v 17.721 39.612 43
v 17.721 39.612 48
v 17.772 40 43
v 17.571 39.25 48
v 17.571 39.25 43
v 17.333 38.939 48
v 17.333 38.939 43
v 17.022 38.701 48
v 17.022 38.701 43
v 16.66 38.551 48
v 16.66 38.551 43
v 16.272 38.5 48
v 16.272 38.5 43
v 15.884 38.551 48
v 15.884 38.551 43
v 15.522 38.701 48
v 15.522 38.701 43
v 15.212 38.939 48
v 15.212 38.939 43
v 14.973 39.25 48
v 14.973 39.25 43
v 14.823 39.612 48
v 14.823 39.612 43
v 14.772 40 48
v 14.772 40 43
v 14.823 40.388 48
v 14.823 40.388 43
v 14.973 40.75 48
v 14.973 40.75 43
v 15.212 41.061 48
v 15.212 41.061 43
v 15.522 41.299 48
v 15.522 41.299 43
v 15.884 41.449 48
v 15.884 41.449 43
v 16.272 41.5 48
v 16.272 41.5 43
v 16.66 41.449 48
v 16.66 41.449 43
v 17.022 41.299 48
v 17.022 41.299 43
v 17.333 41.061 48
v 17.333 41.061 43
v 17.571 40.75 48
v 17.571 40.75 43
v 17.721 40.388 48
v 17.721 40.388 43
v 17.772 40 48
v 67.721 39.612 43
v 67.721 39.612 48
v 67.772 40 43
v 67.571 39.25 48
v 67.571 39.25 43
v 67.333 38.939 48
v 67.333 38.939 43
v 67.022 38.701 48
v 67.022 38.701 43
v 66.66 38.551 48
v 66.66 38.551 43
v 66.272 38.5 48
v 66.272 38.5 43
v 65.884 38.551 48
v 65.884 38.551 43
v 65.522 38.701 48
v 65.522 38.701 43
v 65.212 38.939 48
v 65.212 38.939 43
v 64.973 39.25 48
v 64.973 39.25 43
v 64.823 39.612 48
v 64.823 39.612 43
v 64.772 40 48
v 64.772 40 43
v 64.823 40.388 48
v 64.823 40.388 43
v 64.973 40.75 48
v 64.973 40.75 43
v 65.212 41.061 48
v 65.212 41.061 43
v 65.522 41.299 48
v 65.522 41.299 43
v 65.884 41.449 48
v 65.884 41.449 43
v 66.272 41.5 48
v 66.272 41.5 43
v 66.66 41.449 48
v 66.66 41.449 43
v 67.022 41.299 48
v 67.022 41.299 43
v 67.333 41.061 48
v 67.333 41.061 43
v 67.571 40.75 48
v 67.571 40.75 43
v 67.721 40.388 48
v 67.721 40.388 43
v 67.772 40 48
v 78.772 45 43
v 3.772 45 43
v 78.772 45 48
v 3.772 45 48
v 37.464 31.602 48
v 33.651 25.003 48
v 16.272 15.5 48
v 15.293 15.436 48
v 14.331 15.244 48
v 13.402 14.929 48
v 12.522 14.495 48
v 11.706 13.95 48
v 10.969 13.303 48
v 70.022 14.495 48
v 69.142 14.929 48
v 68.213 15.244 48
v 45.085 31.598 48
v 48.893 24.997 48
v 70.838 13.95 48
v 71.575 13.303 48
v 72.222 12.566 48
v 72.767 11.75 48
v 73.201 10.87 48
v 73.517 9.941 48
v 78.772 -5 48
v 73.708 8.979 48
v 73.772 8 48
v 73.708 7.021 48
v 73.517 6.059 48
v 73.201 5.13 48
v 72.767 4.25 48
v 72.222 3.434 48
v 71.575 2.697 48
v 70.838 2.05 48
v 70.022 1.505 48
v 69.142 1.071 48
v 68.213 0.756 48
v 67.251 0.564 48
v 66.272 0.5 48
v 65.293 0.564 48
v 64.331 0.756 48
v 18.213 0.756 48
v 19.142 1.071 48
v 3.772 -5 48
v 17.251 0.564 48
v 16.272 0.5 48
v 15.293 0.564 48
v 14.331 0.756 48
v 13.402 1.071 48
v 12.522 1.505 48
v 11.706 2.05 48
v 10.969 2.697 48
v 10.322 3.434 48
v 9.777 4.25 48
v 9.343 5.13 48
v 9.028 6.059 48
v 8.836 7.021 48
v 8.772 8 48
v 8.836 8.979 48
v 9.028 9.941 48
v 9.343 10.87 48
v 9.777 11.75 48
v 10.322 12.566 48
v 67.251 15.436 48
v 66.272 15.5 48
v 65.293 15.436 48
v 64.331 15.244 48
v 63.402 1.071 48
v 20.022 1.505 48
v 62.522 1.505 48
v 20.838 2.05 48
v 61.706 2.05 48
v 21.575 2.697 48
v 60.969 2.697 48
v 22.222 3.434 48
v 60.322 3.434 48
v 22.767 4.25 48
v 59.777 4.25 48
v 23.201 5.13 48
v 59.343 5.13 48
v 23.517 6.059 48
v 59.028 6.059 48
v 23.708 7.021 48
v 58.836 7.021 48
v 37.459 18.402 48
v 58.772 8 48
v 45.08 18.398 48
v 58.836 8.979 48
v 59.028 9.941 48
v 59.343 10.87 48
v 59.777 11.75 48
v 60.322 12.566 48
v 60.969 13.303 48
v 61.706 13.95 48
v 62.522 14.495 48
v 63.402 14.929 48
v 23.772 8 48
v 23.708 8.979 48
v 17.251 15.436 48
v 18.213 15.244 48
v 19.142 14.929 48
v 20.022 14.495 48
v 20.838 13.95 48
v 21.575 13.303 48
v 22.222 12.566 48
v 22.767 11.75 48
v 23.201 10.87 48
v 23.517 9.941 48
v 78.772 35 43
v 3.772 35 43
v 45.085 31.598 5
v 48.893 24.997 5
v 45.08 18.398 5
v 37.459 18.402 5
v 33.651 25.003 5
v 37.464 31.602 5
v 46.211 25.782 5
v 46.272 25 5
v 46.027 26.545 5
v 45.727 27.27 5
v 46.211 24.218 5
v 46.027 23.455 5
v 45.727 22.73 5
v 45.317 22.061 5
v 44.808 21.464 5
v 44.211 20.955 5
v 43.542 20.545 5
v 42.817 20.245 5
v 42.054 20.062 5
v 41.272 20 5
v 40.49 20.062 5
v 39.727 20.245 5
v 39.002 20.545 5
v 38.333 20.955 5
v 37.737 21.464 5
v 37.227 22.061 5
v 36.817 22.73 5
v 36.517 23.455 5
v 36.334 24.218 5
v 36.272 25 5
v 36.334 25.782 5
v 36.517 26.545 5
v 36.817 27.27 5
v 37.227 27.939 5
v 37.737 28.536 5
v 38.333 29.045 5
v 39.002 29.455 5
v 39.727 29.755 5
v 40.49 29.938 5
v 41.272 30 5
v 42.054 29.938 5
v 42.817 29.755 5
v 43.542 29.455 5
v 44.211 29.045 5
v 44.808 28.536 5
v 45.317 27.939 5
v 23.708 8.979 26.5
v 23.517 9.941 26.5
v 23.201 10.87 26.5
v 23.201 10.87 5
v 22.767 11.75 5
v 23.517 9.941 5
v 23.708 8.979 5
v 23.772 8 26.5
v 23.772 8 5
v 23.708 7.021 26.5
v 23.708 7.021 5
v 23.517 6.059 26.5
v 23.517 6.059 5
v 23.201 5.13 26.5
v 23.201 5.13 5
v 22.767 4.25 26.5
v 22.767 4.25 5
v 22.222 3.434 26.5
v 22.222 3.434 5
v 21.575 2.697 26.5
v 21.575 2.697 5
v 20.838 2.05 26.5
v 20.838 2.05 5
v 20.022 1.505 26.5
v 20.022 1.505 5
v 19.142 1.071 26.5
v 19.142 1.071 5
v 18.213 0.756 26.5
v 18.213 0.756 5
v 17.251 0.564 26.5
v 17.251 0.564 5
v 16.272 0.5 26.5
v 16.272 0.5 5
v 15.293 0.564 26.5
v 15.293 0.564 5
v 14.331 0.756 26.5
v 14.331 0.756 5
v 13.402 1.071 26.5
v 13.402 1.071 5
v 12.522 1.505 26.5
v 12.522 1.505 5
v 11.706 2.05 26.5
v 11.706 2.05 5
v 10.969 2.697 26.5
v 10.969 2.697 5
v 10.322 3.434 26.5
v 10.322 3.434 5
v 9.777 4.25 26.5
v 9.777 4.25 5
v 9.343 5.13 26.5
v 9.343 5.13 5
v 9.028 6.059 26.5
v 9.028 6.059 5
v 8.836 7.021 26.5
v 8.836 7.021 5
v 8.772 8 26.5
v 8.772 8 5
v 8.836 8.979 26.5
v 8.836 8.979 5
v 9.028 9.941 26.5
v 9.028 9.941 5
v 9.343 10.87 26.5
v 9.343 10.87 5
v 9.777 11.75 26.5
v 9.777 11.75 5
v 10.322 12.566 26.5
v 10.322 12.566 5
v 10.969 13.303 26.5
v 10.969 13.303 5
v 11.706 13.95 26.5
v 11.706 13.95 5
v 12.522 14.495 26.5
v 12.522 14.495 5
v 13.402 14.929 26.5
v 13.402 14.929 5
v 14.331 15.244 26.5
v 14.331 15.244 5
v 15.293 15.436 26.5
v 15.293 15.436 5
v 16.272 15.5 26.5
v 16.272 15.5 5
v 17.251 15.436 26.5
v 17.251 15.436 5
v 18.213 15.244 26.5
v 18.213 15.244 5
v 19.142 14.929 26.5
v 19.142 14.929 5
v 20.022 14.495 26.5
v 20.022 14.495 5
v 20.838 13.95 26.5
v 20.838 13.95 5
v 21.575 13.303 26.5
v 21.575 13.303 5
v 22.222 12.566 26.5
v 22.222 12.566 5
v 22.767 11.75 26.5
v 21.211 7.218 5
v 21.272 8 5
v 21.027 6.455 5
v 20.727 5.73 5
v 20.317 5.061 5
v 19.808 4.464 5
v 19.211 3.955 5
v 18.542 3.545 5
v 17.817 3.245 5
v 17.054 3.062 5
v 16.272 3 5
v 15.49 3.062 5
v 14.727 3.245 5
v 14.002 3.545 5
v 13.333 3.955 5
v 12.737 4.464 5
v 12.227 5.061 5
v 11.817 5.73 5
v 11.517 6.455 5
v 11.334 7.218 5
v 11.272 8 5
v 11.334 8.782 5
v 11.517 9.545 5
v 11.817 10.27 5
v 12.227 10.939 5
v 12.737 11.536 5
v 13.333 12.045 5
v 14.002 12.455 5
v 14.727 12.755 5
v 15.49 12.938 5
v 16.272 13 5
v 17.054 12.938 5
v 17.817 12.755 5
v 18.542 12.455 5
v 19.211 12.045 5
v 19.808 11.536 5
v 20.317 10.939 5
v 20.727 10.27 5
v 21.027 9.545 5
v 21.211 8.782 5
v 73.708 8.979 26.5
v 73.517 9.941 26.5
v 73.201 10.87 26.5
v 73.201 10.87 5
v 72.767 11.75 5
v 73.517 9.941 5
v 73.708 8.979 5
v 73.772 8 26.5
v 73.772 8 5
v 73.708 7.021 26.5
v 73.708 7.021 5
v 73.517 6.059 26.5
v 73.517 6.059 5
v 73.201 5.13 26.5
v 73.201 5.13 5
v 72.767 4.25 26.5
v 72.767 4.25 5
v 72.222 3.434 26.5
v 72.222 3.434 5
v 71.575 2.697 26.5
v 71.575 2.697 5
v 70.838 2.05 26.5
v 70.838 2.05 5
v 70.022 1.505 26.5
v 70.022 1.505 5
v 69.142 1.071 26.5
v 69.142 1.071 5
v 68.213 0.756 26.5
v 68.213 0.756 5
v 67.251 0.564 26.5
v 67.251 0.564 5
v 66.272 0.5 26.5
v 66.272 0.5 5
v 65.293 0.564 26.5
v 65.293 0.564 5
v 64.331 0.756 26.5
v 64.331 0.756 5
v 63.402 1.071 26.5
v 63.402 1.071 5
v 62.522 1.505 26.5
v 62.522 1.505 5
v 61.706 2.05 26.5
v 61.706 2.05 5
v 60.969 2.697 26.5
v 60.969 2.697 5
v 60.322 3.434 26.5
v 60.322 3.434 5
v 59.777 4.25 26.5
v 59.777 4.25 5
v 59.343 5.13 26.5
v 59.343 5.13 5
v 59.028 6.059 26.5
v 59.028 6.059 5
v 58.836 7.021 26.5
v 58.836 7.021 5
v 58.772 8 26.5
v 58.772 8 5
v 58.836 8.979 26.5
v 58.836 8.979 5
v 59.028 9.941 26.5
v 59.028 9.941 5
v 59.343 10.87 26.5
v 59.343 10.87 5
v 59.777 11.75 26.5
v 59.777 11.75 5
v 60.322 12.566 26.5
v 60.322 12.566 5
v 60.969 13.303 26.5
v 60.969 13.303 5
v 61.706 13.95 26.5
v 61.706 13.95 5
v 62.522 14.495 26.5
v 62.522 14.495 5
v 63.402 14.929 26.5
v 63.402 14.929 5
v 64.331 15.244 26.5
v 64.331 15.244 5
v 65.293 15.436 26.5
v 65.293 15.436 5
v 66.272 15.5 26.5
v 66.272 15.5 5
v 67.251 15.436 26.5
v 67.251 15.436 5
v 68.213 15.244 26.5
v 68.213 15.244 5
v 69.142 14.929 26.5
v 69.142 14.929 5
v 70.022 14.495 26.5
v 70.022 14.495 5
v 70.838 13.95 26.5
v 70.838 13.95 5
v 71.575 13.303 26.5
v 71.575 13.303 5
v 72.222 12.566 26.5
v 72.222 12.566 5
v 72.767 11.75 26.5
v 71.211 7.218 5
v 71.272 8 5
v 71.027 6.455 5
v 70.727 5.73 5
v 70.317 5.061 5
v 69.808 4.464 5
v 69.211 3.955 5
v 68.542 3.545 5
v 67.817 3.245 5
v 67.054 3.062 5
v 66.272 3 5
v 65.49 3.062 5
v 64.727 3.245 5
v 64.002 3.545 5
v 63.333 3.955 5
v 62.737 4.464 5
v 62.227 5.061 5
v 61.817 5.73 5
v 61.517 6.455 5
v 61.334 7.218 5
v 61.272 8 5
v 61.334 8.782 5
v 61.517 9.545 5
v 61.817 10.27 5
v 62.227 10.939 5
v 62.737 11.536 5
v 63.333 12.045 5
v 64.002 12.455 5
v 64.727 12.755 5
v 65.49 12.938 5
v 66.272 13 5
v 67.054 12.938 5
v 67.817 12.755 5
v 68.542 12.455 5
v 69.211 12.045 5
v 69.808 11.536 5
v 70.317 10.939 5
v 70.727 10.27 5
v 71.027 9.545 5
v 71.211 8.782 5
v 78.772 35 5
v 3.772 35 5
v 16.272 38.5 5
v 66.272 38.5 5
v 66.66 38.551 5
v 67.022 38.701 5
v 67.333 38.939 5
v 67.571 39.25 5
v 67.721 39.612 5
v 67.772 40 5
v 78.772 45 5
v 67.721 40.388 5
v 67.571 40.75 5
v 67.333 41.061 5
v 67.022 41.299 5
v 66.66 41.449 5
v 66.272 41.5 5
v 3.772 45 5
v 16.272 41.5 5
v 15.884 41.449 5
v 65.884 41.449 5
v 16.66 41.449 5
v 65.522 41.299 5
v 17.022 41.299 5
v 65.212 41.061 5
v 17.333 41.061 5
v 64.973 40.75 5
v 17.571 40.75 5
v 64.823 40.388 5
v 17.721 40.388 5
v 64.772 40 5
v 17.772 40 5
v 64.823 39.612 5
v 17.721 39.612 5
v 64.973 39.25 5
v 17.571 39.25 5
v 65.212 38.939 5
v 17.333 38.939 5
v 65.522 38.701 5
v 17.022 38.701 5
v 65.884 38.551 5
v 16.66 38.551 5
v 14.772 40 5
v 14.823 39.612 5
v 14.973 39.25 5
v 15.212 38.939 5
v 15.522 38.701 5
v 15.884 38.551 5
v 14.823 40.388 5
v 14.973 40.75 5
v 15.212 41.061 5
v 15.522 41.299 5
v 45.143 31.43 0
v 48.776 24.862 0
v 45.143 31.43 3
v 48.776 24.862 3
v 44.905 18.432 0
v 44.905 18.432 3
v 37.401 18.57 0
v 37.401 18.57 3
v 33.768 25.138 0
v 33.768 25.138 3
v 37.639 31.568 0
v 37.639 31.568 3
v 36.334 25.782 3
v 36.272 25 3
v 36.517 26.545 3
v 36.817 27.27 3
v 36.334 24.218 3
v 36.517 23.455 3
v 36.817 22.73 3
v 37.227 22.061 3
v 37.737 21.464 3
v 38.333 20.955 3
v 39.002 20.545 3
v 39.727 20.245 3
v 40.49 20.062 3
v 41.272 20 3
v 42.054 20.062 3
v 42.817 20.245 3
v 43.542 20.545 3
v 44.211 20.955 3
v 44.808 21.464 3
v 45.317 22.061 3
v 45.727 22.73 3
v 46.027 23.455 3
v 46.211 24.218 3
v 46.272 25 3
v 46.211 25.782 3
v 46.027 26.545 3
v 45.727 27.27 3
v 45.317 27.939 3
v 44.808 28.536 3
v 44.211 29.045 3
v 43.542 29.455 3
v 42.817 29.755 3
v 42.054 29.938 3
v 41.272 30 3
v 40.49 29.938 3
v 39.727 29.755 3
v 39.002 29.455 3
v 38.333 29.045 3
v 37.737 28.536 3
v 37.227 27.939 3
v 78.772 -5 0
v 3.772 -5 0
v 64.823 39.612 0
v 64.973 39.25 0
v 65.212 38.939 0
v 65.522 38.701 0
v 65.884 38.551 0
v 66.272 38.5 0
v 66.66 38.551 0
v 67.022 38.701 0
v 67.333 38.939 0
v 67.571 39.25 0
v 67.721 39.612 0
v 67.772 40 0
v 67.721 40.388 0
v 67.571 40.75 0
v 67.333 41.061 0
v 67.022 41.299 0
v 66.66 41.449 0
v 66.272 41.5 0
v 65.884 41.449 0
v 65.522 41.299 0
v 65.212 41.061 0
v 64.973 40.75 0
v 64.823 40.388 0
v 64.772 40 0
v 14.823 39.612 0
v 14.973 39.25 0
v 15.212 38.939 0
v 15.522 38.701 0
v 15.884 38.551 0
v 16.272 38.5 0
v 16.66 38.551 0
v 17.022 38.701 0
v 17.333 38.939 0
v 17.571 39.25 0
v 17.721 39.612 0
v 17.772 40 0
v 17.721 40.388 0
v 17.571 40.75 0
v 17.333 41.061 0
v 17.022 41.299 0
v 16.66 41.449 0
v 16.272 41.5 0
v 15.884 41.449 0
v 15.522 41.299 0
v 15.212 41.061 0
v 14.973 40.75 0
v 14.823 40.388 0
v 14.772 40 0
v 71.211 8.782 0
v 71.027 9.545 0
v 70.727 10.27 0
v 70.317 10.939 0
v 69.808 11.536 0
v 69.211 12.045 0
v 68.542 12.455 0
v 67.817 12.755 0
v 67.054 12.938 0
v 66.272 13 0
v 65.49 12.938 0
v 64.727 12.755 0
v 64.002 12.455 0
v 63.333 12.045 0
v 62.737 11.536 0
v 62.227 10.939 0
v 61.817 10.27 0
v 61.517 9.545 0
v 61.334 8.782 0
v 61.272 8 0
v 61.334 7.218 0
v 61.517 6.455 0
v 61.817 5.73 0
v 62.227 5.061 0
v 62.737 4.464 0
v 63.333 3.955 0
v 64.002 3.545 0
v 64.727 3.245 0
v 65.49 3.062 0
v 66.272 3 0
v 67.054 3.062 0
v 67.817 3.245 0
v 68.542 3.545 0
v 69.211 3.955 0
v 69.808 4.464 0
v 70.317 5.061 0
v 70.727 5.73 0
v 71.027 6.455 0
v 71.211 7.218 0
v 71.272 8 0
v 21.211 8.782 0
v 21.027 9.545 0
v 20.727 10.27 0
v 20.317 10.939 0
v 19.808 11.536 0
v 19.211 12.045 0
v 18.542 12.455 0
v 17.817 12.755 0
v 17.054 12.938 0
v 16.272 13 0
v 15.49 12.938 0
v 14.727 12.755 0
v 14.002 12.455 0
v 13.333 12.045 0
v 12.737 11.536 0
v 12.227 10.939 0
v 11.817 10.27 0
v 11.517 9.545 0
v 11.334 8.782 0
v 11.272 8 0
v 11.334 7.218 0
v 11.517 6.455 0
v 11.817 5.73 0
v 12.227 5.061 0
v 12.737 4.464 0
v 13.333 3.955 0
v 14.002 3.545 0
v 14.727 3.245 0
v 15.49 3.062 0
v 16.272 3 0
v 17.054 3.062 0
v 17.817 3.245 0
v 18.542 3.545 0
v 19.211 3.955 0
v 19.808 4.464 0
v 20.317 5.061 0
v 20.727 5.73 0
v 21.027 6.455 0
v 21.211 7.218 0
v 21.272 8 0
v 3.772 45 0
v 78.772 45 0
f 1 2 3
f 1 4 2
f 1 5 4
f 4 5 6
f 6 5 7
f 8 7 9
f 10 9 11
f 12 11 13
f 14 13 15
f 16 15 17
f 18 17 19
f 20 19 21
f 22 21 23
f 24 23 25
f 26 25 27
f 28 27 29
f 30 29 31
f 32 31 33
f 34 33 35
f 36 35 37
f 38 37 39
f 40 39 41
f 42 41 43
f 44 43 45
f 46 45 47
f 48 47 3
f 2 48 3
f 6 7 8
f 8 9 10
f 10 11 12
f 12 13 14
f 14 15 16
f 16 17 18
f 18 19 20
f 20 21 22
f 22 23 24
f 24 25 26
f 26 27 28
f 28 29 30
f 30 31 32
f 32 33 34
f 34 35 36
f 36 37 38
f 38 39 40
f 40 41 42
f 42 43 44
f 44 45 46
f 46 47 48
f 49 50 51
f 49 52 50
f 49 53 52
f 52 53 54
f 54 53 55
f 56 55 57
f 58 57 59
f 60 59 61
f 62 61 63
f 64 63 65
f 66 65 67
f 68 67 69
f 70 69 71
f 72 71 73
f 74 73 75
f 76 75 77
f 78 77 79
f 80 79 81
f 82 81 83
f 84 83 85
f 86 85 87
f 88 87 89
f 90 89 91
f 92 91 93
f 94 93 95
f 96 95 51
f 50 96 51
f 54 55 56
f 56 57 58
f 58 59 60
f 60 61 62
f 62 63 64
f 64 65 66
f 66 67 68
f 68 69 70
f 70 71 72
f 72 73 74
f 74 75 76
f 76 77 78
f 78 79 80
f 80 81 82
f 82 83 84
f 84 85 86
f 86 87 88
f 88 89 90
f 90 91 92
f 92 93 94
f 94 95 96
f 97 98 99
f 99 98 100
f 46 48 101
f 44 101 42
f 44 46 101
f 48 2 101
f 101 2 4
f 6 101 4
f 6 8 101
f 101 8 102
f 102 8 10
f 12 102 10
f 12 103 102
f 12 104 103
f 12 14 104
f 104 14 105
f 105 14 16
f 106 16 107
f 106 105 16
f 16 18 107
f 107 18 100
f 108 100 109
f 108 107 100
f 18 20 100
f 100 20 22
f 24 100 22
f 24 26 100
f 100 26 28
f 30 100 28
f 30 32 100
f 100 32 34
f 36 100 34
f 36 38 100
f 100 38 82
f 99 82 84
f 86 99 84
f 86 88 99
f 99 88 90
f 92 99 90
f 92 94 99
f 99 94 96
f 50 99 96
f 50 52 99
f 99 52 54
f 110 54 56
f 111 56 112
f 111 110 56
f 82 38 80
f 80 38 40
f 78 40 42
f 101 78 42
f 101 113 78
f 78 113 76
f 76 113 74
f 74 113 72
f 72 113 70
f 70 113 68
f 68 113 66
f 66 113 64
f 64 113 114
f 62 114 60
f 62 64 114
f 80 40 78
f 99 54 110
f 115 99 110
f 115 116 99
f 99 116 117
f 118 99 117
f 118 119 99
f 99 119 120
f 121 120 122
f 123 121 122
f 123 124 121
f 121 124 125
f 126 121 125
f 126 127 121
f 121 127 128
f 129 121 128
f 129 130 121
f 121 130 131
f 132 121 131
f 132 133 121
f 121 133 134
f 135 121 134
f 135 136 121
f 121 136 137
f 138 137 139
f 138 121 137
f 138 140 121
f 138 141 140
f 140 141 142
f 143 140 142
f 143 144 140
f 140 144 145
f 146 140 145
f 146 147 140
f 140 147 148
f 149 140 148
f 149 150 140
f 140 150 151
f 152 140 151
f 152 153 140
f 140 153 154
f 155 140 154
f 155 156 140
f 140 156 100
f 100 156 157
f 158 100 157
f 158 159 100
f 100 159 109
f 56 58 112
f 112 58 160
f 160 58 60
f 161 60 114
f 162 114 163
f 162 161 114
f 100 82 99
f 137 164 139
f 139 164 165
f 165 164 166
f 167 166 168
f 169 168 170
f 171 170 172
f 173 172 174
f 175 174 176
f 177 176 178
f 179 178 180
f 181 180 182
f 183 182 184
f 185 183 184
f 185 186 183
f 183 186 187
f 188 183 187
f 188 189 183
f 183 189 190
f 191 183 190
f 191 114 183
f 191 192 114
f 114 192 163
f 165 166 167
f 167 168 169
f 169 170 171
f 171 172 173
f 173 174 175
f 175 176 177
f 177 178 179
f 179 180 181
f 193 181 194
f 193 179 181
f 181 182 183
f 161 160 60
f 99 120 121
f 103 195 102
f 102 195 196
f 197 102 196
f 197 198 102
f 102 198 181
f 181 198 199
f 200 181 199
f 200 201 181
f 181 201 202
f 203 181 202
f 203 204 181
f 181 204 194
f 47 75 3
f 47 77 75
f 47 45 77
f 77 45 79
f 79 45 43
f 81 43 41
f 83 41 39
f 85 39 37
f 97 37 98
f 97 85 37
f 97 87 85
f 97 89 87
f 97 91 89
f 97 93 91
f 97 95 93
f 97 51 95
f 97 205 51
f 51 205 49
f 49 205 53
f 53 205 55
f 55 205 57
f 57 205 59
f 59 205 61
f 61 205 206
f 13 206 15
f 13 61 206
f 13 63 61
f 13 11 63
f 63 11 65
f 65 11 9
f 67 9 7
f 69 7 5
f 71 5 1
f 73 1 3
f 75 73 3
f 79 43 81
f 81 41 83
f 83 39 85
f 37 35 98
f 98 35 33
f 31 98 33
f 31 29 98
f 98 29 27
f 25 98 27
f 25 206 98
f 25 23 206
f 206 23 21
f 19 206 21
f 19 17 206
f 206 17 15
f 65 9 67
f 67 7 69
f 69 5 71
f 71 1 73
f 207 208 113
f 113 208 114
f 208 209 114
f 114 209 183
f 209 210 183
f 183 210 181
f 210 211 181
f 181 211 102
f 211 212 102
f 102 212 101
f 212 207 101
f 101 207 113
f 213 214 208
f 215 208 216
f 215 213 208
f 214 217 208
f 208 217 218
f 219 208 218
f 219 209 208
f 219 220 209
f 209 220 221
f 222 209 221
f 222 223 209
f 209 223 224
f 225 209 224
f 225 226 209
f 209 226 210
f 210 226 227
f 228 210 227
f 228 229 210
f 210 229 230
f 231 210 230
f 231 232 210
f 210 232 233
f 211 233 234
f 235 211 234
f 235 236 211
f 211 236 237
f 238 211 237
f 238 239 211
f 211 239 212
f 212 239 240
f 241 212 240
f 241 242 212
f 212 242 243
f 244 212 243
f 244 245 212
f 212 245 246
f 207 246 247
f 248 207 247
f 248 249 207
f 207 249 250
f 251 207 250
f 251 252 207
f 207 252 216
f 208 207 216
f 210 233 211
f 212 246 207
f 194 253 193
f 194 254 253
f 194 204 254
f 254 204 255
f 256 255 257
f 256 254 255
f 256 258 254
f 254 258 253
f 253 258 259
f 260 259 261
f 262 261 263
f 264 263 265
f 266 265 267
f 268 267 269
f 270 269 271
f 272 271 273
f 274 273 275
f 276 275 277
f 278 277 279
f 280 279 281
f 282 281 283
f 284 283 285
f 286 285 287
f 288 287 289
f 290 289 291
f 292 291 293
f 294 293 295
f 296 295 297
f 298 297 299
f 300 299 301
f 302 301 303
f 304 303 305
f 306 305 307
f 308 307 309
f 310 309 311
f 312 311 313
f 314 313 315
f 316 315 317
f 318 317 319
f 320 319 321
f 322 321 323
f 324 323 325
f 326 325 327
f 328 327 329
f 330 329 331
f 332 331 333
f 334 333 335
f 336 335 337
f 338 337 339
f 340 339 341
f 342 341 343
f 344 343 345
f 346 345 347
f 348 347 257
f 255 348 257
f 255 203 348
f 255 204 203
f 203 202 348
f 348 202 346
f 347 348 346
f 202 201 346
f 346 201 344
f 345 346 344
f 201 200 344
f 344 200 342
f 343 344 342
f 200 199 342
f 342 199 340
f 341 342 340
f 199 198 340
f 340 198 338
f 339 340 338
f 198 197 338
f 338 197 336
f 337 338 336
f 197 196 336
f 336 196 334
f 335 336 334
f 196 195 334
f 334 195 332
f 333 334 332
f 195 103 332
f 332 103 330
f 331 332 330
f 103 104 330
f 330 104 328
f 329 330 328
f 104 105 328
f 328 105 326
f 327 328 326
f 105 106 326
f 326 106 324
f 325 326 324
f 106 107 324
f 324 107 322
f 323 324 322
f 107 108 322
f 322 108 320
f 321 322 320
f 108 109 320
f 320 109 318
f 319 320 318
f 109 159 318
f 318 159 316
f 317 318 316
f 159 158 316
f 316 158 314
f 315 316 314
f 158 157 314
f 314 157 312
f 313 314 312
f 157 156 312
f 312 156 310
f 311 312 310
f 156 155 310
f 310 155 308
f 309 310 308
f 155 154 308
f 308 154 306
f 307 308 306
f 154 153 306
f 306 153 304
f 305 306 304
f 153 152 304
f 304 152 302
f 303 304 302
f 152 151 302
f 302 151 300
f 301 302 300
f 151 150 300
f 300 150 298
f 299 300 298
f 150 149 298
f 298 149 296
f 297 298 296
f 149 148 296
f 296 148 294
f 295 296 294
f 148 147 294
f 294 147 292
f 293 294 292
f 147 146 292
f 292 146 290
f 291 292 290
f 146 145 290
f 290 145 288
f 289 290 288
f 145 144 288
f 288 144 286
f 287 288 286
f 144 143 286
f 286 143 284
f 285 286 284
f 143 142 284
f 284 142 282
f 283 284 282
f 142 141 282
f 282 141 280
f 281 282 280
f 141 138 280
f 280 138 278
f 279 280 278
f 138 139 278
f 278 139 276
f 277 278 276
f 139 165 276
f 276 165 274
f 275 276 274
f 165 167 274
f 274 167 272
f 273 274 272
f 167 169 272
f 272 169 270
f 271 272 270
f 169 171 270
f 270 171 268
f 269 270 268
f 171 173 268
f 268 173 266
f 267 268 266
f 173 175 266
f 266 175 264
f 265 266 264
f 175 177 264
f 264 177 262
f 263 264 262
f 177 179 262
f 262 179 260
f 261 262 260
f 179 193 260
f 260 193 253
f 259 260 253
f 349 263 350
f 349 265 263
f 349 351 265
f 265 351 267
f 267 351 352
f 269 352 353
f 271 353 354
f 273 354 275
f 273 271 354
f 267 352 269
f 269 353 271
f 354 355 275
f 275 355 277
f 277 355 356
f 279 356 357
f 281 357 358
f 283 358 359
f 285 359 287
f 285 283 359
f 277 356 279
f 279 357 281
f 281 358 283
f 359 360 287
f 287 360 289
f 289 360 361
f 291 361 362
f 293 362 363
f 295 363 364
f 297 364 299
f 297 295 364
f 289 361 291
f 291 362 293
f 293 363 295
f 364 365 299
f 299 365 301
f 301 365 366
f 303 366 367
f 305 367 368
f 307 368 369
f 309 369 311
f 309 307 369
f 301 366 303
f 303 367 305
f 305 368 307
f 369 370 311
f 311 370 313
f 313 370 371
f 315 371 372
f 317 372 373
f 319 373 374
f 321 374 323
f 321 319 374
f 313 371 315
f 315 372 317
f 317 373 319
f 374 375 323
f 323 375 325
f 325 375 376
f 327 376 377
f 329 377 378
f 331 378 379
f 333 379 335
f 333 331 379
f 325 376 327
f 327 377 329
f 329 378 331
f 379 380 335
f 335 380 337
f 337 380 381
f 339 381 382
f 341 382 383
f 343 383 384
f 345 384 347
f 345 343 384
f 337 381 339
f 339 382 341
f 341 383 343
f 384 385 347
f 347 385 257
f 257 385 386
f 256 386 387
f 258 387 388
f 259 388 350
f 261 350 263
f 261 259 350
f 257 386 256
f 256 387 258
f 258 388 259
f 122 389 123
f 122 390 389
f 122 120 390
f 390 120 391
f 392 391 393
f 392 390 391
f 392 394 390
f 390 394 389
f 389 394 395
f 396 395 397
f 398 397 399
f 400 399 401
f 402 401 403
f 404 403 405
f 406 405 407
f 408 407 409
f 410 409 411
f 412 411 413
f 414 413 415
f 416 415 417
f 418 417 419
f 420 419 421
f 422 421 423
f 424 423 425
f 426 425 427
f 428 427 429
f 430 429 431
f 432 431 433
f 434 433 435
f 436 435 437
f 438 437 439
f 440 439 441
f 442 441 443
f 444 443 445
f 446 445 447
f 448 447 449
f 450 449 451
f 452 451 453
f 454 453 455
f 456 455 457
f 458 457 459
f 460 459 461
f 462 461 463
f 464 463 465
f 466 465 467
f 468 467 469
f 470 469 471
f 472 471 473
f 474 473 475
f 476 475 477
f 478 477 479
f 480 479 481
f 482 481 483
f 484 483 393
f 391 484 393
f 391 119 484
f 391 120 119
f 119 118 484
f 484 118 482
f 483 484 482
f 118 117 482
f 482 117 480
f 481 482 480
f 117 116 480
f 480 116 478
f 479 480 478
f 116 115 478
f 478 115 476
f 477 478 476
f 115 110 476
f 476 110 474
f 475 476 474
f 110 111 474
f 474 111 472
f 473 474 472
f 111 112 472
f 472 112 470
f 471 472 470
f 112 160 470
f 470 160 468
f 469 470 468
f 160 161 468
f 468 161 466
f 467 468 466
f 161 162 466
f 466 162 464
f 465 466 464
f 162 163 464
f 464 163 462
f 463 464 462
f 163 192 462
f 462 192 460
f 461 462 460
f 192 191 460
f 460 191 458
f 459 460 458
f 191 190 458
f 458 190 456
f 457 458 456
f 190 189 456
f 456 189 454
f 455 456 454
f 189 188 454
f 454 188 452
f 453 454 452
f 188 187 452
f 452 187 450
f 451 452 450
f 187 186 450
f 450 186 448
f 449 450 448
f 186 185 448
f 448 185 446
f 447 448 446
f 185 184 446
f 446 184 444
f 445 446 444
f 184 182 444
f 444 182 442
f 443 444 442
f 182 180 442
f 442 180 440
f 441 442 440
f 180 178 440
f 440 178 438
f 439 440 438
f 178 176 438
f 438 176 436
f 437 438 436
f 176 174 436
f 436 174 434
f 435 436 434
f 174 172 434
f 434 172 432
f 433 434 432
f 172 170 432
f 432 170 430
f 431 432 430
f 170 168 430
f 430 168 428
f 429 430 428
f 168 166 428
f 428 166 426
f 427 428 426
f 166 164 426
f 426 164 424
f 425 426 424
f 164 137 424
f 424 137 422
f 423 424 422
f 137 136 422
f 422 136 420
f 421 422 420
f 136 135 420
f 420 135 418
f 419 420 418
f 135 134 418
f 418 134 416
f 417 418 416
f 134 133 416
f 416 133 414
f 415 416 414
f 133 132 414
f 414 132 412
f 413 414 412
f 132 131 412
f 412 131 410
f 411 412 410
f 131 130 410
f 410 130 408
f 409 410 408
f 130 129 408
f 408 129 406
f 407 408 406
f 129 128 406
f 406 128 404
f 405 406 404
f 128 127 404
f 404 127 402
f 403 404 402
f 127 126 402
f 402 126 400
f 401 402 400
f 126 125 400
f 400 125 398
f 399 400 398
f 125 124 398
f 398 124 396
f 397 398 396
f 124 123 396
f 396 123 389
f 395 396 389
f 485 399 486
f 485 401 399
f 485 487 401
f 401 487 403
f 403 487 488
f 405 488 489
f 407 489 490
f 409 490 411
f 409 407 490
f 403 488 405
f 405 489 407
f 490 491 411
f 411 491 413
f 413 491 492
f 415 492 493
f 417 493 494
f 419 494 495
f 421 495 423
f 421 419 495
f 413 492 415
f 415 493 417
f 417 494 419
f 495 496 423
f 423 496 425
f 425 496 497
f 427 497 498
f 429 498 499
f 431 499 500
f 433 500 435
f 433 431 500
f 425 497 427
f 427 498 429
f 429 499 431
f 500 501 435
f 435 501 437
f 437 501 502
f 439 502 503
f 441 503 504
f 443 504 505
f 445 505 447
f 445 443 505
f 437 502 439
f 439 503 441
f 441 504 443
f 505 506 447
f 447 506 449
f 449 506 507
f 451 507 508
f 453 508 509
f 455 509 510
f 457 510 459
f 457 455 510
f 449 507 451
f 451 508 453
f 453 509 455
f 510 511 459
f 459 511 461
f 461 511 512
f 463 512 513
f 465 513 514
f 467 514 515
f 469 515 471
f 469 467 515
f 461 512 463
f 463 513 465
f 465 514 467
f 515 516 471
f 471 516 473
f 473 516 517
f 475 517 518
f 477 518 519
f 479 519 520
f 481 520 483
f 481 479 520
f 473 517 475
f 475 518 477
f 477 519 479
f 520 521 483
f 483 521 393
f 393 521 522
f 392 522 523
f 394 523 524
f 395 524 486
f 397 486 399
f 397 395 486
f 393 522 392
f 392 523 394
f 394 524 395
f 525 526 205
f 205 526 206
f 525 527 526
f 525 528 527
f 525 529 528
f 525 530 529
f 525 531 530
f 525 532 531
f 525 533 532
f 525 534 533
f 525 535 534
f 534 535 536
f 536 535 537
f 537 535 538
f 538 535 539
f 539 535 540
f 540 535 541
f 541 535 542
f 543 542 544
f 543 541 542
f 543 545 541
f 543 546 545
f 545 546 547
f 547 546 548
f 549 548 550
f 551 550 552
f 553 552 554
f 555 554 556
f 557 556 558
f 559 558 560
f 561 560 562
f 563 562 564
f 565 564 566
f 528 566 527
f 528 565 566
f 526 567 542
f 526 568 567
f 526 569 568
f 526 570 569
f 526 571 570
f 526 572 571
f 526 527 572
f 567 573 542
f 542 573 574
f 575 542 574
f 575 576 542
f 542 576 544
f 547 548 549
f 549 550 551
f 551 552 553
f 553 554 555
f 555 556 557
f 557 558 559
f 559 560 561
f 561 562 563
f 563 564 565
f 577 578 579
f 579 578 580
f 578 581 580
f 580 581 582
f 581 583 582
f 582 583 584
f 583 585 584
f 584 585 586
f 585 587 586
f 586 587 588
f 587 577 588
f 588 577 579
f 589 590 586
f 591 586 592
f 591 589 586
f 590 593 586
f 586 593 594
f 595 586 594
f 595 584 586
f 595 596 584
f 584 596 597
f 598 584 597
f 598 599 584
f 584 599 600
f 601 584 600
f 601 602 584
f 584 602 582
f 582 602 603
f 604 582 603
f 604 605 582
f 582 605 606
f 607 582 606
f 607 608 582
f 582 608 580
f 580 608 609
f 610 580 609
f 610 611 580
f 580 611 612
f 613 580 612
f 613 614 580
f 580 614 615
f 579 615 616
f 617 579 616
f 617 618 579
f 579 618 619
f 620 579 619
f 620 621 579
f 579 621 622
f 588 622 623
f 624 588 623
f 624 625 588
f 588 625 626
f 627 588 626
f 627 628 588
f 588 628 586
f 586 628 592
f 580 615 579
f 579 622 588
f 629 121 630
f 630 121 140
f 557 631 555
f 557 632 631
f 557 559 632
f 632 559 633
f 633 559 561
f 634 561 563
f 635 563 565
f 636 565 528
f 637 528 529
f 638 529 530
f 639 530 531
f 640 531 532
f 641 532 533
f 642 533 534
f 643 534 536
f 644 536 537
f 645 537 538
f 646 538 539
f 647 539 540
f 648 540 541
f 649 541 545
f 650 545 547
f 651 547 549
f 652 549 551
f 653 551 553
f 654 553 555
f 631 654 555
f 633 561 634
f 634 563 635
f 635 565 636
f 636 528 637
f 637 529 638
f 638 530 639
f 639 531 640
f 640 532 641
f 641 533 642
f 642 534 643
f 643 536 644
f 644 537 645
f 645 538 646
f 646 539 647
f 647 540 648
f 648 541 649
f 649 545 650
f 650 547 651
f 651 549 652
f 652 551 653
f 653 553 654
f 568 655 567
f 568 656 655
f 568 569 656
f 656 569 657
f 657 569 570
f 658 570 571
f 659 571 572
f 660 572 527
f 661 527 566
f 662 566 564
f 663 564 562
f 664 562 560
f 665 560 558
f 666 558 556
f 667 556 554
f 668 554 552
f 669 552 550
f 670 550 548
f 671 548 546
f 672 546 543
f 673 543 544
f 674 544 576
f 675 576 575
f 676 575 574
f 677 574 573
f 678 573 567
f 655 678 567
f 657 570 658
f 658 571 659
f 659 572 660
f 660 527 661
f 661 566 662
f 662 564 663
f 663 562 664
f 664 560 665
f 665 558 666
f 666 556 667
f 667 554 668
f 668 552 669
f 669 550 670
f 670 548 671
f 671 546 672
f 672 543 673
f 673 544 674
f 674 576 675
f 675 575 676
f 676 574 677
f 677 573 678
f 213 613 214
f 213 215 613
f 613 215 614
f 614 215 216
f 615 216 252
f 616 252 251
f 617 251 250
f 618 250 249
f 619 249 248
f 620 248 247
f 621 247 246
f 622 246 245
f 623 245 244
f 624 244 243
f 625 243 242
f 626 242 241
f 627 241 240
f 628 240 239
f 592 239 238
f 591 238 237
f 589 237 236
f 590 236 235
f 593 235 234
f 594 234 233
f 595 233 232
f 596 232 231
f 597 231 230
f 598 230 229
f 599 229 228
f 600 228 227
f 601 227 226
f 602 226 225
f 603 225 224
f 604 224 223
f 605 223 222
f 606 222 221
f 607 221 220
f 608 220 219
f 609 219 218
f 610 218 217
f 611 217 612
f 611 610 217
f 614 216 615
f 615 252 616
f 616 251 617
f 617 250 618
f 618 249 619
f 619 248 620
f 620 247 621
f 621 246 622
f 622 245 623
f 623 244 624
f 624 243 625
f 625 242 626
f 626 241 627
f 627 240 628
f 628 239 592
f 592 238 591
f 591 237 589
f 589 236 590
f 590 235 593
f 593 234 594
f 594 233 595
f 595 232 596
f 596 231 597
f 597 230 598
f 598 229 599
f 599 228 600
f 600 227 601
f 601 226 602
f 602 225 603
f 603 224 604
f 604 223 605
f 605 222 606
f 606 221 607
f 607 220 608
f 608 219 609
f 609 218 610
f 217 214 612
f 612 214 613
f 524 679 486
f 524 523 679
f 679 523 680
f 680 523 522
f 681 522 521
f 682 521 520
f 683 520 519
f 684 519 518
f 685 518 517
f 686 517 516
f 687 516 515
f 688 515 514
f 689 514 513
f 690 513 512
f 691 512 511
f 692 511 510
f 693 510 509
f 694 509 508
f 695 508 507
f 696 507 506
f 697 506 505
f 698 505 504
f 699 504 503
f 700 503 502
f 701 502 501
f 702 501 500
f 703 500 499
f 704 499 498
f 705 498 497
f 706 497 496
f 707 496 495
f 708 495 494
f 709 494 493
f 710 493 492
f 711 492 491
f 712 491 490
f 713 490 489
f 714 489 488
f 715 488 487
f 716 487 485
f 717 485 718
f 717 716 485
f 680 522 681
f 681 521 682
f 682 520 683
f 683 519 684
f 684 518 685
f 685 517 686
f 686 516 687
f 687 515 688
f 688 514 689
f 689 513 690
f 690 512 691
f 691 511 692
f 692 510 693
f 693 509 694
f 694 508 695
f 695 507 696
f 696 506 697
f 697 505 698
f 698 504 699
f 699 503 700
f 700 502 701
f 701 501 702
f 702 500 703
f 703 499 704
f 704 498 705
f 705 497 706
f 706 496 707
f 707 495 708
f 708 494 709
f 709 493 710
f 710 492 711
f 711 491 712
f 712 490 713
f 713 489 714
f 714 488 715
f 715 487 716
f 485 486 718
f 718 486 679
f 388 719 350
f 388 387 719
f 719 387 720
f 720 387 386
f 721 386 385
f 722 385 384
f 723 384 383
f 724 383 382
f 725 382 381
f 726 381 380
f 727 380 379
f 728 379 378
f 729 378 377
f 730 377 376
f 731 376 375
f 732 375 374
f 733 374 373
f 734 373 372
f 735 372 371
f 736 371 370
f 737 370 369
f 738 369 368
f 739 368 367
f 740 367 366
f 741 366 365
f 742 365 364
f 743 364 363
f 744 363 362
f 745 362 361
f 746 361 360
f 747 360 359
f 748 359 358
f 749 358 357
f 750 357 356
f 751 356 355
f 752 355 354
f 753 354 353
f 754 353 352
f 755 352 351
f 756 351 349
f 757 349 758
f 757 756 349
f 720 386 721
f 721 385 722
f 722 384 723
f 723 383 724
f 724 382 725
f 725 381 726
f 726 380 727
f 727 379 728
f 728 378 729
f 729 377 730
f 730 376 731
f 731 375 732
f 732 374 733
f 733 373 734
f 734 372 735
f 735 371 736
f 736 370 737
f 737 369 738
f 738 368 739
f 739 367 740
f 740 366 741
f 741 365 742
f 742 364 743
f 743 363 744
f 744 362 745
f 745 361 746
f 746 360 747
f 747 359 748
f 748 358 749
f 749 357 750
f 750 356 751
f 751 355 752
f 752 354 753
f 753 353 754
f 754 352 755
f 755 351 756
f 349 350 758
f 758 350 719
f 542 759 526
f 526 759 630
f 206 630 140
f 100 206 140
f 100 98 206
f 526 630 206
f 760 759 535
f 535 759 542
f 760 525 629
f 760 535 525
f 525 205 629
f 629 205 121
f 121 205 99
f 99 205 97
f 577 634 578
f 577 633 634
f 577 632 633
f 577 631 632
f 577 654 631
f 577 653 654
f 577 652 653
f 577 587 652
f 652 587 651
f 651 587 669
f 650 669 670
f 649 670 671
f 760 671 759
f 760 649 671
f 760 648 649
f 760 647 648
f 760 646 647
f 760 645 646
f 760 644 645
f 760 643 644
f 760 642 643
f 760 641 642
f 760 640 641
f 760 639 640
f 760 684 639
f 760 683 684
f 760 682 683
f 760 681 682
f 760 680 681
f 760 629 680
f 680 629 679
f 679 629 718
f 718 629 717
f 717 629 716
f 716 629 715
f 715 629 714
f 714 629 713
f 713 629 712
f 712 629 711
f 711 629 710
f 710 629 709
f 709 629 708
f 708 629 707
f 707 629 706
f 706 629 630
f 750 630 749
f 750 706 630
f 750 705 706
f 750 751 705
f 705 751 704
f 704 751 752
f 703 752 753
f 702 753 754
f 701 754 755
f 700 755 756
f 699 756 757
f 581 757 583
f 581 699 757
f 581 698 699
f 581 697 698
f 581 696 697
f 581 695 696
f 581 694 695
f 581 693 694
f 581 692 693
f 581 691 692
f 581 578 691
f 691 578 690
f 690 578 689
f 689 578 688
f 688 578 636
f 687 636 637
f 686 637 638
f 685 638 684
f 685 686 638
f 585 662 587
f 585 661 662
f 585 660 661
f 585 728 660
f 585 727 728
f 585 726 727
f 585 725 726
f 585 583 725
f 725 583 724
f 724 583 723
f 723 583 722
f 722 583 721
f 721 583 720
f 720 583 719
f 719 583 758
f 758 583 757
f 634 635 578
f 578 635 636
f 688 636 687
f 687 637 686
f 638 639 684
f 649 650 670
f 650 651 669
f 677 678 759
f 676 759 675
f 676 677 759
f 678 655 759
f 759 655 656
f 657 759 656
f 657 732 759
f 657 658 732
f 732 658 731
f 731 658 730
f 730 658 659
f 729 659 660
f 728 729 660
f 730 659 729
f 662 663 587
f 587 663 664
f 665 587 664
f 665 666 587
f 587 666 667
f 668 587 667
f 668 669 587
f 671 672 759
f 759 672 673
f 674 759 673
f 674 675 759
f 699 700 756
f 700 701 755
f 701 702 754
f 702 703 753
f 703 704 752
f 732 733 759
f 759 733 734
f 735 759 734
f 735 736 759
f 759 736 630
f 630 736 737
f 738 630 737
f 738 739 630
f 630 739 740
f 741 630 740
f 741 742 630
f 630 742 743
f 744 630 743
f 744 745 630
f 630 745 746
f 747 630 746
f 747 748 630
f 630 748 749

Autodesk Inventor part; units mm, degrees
ref_plane "YZ Plane" through (0, 0, 0) normal (1, 0, 0) x (0, 1, 0)
ref_plane "XZ Plane" through (0, 0, 0) normal (0, 1, 0) x (-1, 0, 0)
ref_plane "XY Plane" through (0, 0, 0) normal (0, 0, 1) x (1, 0, 0)
sketch "Sketch11" plane through (0, 0, 0) normal (0, 0, 1) x (1, 0, 0)
  line L0 (3.7722, 0) -> (78.7722, 0)
  line L1 (78.7722, 0) -> (78.7722, 45)
  line L2 (78.7722, 45) -> (3.7722, 45)
  line L3 (3.7722, 45) -> (3.7722, 0)
  circle A0 centre (16.2722, 8) radius 5
  circle A1 centre (66.2722, 8) radius 5
  point P0 (0, 0)
  dimension "d63" = 75
  dimension "d65" = 45
  dimension "d66" = 10
  dimension "d67" = 10
  dimension "d68" = 50
  dimension "d69" = 12.5
  dimension "d70" = 8
  dimension "d71" = 8
extrude "Extrusion10" add sketch "Sketch11" along normal blind 5
sketch "Sketch12" plane through (0, 0, 5) normal (0, 0, 1) x (1, 0, 0)
  circle A0 centre (66.2722, 8) radius 5 projected
  circle A1 centre (16.2722, 8) radius 5 projected
  circle A2 centre (16.2722, 8) radius 7.5
  circle A3 centre (66.2722, 8) radius 7.5
  point P0 (0, 0)
  dimension "d74" = 15
  dimension "d77" = 15
sketch "Sketch13" plane through (0, 0, 5) normal (0, 0, 1) x (1, 0, 0)
  line L0 (3.7722, 0) -> (78.7722, 0) projected
  line L1 (3.7722, 45) -> (3.7722, 0) projected
  line L2 (37.4644, 31.6016) -> (45.0855, 31.5984)
  line L3 (45.0855, 31.5984) -> (48.8932, 24.9968)
  line L4 (48.8932, 24.9968) -> (45.0799, 18.3984)
  line L5 (45.0799, 18.3984) -> (37.4589, 18.4016)
  line L6 (37.4589, 18.4016) -> (33.6512, 25.0032)
  line L7 (33.6512, 25.0032) -> (37.4644, 31.6016)
  point P0 (0, 0)
  point P1 (41.2722, 25)
  point P2 (41.2722, 25)
  dimension "d81" = 37.5
  dimension "d82" = 25
  dimension "d83" = 13.2
sketch "Sketch14" plane through (0, 0, 5) normal (0, 0, 1) x (1, 0, 0)
  circle A0 centre (41.2722, 25) radius 5
  line L0 (3.7722, 0) -> (78.7722, 0) projected
  line L1 (3.7722, 45) -> (3.7722, 0) projected
  point P0 (0, 0)
  dimension "d87" = 10
  dimension "d89" = 25
  dimension "d90" = 37.5
extrude "Extrusion13" cut sketch "Sketch14" against normal blind 50
sketch "Sketch16" plane through (0, 0, 0) normal (0, 0, -1) x (-1, 0, 0)
  line L0 (-78.7722, 45) -> (-3.7722, 45) projected
  line L1 (-78.7722, 0) -> (-78.7722, 45) projected
  circle A0 centre (-66.2722, 40) radius 1.5
  circle A1 centre (-16.2722, 40) radius 1.5
  point P0 (0, 0)
  dimension "d99" = 3
  dimension "d101" = 3
  dimension "d102" = 5
  dimension "d103" = 5
  dimension "d104" = 50
  dimension "d105" = 12.5
extrude "Extrusion15" cut sketch "Sketch16" against normal blind 100
sketch "Sketch17" plane through (3.7722, 0, 0) normal (0, -1, 0) x (1, 0, 0)
  line L0 (0, 0) -> (75, 0) projected
  line L1 (75, 0) -> (75, 5) projected
  line L2 (0, 0) -> (75, 0)
  line L3 (75, 0) -> (75, 5)
  line L4 (75, 5) -> (0, 5)
  line L5 (0, 5) -> (0, 0)
  point P0 (-3.7722, 0)
extrude "Extrusion16" add sketch "Sketch17" along normal blind 5
sketch "Sketch20" plane through (0, 0, 0) normal (0, 0, -1) x (-1, 0, 0)
  circle A0 centre (-41.2722, 25) radius 5 projected
  line L0 (-45.1434, 31.4302) -> (-37.6391, 31.5677)
  line L1 (-37.6391, 31.5677) -> (-33.7679, 25.1375)
  line L2 (-33.7679, 25.1375) -> (-37.401, 18.5698)
  line L3 (-37.401, 18.5698) -> (-44.9052, 18.4323)
  line L4 (-44.9052, 18.4323) -> (-48.7765, 24.8625)
  line L5 (-48.7765, 24.8625) -> (-45.1434, 31.4302)
  point P0 (0, 0)
  dimension "d122" = 13
extrude "Extrusion19" cut sketch "Sketch20" against normal blind 3
sketch "Sketch21" plane through (0, 0, 5) normal (0, 0, 1) x (1, 0, 0)
  circle A0 centre (41.2722, 25) radius 5 projected
  circle A1 centre (66.2722, 8) radius 5 projected
  circle A2 centre (16.2722, 8) radius 5 projected
  line L0 (78.7722, 45) -> (78.7722, -5) projected
  line L1 (78.7722, 45) -> (3.7722, 45) projected
  line L2 (3.7722, -5) -> (78.7722, -5)
  line L3 (78.7722, -5) -> (78.7722, 35)
  line L4 (78.7722, 35) -> (3.7722, 35)
  line L5 (3.7722, 35) -> (3.7722, -5)
  point P0 (0, 0)
  dimension "d125" = 10
extrude "Extrusion20" add sketch "Sketch21" along normal blind 38
extrude "Extrusion22" cut sketch "Sketch12" along normal blind 38
extrude "Extrusion23" cut sketch "Sketch13" along normal blind 38
sketch "Sketch22" plane through (0, 0, 43) normal (0, 0, 1) x (1, 0, 0)
  line L0 (45.0855, 31.5984) -> (48.8932, 24.9968) projected
  line L1 (48.8932, 24.9968) -> (45.0799, 18.3984) projected
  line L2 (45.0799, 18.3984) -> (37.4589, 18.4016) projected
  line L3 (37.4589, 18.4016) -> (33.6512, 25.0032) projected
  line L4 (33.6512, 25.0032) -> (37.4644, 31.6016) projected
  line L5 (37.4644, 31.6016) -> (45.0855, 31.5984) projected
  circle A0 centre (16.2722, 8) radius 7.5 projected
  circle A1 centre (66.2722, 8) radius 7.5 projected
  line L6 (78.7722, 35) -> (3.7722, 35) projected
  line L7 (3.7722, -5) -> (78.7722, -5)
  line L8 (78.7722, -5) -> (78.7722, 45)
  line L9 (78.7722, 45) -> (3.7722, 45)
  line L10 (3.7722, 45) -> (3.7722, -5)
  point P0 (0, 0)
  dimension "d134" = 10
extrude "Extrusion24" add sketch "Sketch22" along normal blind 5
sketch "Sketch23" plane through (0, 0, 48) normal (0, 0, 1) x (1, 0, 0)
  line L0 (78.7722, 45) -> (3.7722, 45) projected
  line L1 (3.7722, 45) -> (3.7722, -5) projected
  circle A0 centre (16.2722, 40) radius 1.5
  circle A1 centre (66.2722, 40) radius 1.5
  point P0 (0, 0)
  dimension "d137" = 3
  dimension "d139" = 3
  dimension "d140" = 50
  dimension "d141" = 12.5
  dimension "d142" = 5
  dimension "d143" = 5
extrude "Extrusion25" cut sketch "Sketch23" against normal blind 5
properties part number "carriage"
